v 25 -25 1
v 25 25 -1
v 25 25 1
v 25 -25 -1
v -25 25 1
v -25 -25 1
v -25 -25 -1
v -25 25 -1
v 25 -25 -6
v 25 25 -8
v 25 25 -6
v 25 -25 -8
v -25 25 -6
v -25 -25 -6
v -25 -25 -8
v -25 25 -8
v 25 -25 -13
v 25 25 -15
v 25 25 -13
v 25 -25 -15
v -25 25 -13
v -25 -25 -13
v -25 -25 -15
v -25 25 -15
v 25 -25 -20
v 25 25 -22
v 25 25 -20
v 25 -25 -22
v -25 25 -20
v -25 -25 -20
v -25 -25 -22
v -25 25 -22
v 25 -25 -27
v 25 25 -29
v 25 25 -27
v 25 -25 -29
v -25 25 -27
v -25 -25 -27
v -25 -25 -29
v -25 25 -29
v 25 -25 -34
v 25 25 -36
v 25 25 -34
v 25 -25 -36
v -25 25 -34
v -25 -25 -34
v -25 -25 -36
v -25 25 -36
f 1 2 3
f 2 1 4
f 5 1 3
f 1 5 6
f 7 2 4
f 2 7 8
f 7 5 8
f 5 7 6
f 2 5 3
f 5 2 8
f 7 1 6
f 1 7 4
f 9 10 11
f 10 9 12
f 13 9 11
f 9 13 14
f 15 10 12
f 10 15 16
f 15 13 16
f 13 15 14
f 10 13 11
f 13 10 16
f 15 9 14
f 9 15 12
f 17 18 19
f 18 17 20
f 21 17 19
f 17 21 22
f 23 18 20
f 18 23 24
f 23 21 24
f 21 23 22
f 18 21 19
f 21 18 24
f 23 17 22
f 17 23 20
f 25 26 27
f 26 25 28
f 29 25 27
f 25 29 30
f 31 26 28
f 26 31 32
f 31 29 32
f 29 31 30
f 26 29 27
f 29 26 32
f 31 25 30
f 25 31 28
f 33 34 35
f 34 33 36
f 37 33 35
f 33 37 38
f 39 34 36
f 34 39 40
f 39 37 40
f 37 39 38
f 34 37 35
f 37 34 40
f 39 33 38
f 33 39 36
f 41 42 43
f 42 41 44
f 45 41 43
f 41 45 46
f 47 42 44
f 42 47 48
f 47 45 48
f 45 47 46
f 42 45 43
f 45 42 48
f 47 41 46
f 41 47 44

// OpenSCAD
// Parameters for the flat plate
plate_length = 50;  // Length of the flat plate
plate_width = 50;   // Width of the flat plate
plate_thickness = 2; // Thickness of the flat plate
plate_spacing = 5;  // Spacing between each layer

// Function to create a flat plate
module flat_plate() {
    cube([plate_length, plate_width, plate_thickness], center = true);
}

// Stack of flat plates
module stacked_flat_plates() {
    for (i = [0:5]) {
        translate([0, 0, -i * (plate_thickness + plate_spacing)])
            flat_plate();
    }
}

// Render the stacked flat plates
stacked_flat_plates();
